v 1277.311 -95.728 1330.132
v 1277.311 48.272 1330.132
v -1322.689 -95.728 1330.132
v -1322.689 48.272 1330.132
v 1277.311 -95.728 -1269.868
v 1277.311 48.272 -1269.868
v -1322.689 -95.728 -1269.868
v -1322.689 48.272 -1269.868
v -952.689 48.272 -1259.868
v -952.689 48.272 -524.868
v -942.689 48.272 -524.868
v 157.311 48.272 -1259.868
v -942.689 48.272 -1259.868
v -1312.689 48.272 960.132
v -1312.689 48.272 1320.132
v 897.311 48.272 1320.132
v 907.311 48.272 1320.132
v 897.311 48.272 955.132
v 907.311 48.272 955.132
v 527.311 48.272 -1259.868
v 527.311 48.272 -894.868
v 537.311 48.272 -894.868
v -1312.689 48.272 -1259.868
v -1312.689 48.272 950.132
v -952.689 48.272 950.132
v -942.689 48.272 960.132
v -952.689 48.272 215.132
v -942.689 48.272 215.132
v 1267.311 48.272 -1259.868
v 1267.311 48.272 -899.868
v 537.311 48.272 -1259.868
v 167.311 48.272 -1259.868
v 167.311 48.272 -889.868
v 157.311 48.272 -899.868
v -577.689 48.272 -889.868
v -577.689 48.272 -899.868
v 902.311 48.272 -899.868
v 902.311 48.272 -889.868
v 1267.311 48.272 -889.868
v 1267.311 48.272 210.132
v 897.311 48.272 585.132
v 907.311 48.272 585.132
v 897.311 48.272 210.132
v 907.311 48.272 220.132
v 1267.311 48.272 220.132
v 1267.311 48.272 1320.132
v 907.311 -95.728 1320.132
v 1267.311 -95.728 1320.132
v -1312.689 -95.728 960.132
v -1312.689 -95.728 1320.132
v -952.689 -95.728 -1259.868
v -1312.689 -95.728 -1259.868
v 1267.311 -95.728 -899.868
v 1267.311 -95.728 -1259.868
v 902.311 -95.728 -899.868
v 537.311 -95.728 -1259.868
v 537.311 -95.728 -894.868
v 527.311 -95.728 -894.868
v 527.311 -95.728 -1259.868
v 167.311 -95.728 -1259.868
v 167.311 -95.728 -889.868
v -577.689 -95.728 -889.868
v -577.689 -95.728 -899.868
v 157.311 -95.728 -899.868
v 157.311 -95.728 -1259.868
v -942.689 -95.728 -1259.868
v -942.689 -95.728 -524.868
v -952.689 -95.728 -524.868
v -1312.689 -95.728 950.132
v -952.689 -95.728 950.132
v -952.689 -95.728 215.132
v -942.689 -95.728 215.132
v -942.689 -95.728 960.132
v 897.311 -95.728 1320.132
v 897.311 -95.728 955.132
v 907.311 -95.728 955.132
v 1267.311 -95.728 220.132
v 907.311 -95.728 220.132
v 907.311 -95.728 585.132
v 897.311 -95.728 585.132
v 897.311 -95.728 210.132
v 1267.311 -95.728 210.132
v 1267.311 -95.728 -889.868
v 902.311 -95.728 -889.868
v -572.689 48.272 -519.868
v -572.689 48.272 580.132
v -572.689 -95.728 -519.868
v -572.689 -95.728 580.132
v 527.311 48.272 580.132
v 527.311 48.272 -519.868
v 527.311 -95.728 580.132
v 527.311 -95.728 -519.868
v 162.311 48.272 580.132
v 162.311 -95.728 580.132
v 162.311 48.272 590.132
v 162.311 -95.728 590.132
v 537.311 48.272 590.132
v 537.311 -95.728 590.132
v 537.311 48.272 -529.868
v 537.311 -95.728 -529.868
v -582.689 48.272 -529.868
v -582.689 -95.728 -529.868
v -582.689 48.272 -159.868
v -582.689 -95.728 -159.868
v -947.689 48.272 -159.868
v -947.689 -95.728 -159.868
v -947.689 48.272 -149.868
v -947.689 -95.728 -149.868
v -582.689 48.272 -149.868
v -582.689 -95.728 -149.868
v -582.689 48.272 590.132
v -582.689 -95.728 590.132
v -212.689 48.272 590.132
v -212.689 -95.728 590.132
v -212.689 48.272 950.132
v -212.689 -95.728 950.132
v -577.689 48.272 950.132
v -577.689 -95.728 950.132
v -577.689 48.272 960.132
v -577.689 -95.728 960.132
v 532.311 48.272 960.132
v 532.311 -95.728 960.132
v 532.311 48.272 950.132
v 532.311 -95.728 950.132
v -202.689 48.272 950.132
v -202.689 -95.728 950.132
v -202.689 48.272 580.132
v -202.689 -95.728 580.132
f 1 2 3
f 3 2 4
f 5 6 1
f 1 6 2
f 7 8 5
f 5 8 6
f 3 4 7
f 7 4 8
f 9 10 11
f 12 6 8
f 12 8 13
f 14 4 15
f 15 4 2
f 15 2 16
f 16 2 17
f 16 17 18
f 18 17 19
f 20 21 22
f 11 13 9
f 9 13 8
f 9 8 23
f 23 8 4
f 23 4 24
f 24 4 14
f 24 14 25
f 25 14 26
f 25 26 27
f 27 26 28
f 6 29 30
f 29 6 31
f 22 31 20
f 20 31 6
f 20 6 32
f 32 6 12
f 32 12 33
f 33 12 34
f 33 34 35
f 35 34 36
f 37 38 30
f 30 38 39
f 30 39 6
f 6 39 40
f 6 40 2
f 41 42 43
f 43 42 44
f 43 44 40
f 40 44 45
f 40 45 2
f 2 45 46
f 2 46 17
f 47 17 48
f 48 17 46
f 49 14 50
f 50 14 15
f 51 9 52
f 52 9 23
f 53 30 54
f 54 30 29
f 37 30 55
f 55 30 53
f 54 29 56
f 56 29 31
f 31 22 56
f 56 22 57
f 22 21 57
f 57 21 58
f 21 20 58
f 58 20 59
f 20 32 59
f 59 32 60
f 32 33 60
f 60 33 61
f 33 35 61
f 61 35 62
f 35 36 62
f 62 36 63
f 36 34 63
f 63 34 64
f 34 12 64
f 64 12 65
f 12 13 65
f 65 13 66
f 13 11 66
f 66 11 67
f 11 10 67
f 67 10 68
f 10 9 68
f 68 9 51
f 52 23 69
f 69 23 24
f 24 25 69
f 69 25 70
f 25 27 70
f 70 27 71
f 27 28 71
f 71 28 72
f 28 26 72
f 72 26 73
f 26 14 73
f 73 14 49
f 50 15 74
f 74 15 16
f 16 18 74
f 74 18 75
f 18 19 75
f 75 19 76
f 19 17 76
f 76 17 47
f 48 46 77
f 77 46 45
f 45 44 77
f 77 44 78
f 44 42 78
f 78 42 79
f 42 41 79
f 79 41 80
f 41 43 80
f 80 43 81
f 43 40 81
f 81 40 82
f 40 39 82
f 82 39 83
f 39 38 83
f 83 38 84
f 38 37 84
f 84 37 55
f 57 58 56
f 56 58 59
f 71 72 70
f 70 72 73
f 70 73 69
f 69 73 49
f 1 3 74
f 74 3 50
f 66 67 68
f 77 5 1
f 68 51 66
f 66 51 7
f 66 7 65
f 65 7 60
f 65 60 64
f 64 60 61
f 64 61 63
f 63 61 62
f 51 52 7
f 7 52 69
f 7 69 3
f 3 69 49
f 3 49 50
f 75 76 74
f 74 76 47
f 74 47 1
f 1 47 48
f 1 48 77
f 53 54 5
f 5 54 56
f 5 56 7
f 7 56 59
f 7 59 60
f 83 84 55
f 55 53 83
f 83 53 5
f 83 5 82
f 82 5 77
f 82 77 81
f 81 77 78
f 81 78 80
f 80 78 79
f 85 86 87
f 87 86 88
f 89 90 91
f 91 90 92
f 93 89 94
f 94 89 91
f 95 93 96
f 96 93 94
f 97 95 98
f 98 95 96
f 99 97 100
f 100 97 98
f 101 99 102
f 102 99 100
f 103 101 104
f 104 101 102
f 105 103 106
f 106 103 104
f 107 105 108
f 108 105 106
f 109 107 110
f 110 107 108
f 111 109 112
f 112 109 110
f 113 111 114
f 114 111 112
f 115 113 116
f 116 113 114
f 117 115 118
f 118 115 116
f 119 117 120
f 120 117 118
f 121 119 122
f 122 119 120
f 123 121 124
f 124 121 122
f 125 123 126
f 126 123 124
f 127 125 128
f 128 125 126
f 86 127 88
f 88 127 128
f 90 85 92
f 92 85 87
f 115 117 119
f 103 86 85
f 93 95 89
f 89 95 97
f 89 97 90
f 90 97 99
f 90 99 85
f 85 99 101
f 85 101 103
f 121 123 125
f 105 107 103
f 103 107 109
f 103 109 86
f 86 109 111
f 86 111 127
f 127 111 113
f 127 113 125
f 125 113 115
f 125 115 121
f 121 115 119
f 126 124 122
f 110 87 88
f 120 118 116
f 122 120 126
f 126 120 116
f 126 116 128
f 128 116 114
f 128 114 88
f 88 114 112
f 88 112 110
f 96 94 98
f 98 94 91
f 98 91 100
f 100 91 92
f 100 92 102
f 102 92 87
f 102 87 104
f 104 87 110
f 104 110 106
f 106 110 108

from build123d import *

# Parameters (mm, degrees)
SKETCH1_W           = 2600
SKETCH1_H           = 2600
BOSS_EXTRUDE1_DEPTH = 150
CUT_EXTRUDE1_DEPTH  = 147
BOSS_EXTRUDE2_DEPTH = 147
CUT_EXTRUDE2_REACH  = 1852
SKETCH4_W           = 1100
SKETCH4_H           = 144
SKETCH5_W           = 360
SKETCH5_H           = 360
CUT_EXTRUDE3_DEPTH  = 3
SKETCH6_W           = 360
SKETCH6_H           = 360
CUT_EXTRUDE4_DEPTH  = 3
SKETCH7_W           = 360
SKETCH7_H           = 360
CUT_EXTRUDE5_DEPTH  = 3
CUT_EXTRUDE6_REACH  = 146
SKETCH9_W           = 360
SKETCH9_H           = 360
CUT_EXTRUDE7_REACH  = 146
SKETCH11_W          = 360
SKETCH11_H          = 360
CUT_EXTRUDE8_REACH  = 146
SKETCH13_W          = 360
SKETCH13_H          = 360
CUT_EXTRUDE9_REACH  = 146
SKETCH15_W          = 360
SKETCH15_H          = 360
SKETCH18_W          = 2600
SKETCH18_H          = 2600
CUT_EXTRUDE10_DEPTH = 6


with BuildPart() as part:
    # Sketch1 → Boss-Extrude1 (new body)
    with BuildSketch(Plane(origin=(0, 48.271727257, 0), x_dir=(1, 0, 0), z_dir=(0, 1, 0))):
        with Locations((-22.689229356, -30.131591124)):
            Rectangle(SKETCH1_W, SKETCH1_H)
    extrude(amount=-BOSS_EXTRUDE1_DEPTH)

    # Sketch2 → Cut-Extrude1 (cut)
    with BuildSketch(Plane(origin=(0, 48.271727257, 0), x_dir=(-1, 0, 0), z_dir=(0, 1, 0))):
        Polygon((-902.310770644, -899.868408876), (-907.310770644, -899.868408876), (-907.310770644, -1259.868408876), (-537.310770644, -1259.868408876), (-537.310770644, -894.868408876), (-527.310770644, -894.868408876), (-527.310770644, -1259.868408876), (-167.310770644, -1259.868408876), (-167.310770644, -889.868408876), (577.689229356, -889.868408876), (577.689229356, -899.868408876), (-157.310770644, -899.868408876), (-157.310770644, -1259.868408876), (942.689229356, -1259.868408876), (942.689229356, -524.868408876), (952.689229356, -524.868408876), (952.689229356, -899.868408876), (1312.689229356, -899.868408876), (1312.689229356, 950.131591124), (952.689229356, 950.131591124), (952.689229356, 215.131591124), (942.689229356, 215.131591124), (942.689229356, 960.131591124), (952.689229356, 960.131591124), (952.689229356, 1320.131591124), (-897.310770644, 1320.131591124), (-897.310770644, 955.131591124), (-907.310770644, 955.131591124), (-907.310770644, 960.131591124), (-1267.310770644, 960.131591124), (-1267.310770644, 220.131591124), (-907.310770644, 220.131591124), (-907.310770644, 585.131591124), (-897.310770644, 585.131591124), (-897.310770644, 210.131591124), (-1267.310770644, 210.131591124), (-1267.310770644, -889.868408876), (-902.310770644, -889.868408876), align=None)
    extrude(amount=-CUT_EXTRUDE1_DEPTH, mode=Mode.SUBTRACT)

    # Sketch3 → Boss-Extrude2 (add)
    with BuildSketch(Plane(origin=(0, -98.728272743, 0), x_dir=(-1, 0, 0), z_dir=(0, 1, 0))):
        Polygon((572.689229356, 580.131591124), (202.689229356, 580.131591124), (202.689229356, 950.131591124), (-532.310770644, 950.131591124), (-532.310770644, 960.131591124), (577.689229356, 960.131591124), (577.689229356, 950.131591124), (212.689229356, 950.131591124), (212.689229356, 590.131591124), (582.689229356, 590.131591124), (582.689229356, -149.868408876), (947.689229356, -149.868408876), (947.689229356, -159.868408876), (582.689229356, -159.868408876), (582.689229356, -529.868408876), (-537.310770644, -529.868408876), (-537.310770644, 590.131591124), (-162.310770644, 590.131591124), (-162.310770644, 580.131591124), (-527.310770644, 580.131591124), (-527.310770644, -149.868408876), (572.689229356, -149.868408876), align=None)
    extrude(amount=BOSS_EXTRUDE2_DEPTH)

    # Sketch4 → Cut-Extrude2 (cut, up to next)
    with BuildSketch(Plane(origin=(0, 0, -519.868408876), x_dir=(-1, 0, 0), z_dir=(0, 0, -1)), mode=Mode.PRIVATE) as cut_extrude2_sk1:
        with Locations((22.689229356, -23.728272743)):
            Rectangle(SKETCH4_W, SKETCH4_H)
    cut_extrude2_tool1 = extrude(cut_extrude2_sk1.sketch, amount=-CUT_EXTRUDE2_REACH, mode=Mode.PRIVATE) & part.part
    add(cut_extrude2_tool1.solids().sort_by_distance((-22.689229, -23.728273, -519.868409))[0], mode=Mode.SUBTRACT)

    # Sketch5 → Cut-Extrude3 (cut)
    with BuildSketch(Plane(origin=(0, -95.728272743, 0), x_dir=(-1, 0, 0), z_dir=(0, 1, 0))):
        with Locations((392.689229356, -339.868408876)):
            Rectangle(SKETCH5_W, SKETCH5_H)
    extrude(amount=-CUT_EXTRUDE3_DEPTH, mode=Mode.SUBTRACT)

    # Sketch6 → Cut-Extrude4 (cut)
    with BuildSketch(Plane(origin=(0, -95.728272743, 0), x_dir=(-1, 0, 0), z_dir=(0, 1, 0))):
        with Locations((-347.310770644, -339.868408876)):
            Rectangle(SKETCH6_W, SKETCH6_H)
    extrude(amount=-CUT_EXTRUDE4_DEPTH, mode=Mode.SUBTRACT)

    # Sketch7 → Cut-Extrude5 (cut)
    with BuildSketch(Plane(origin=(0, -95.728272743, 0), x_dir=(-1, 0, 0), z_dir=(0, 1, 0))):
        with Locations((22.689229356, -339.868408876)):
            Rectangle(SKETCH7_W, SKETCH7_H)
    extrude(amount=-CUT_EXTRUDE5_DEPTH, mode=Mode.SUBTRACT)

    # Sketch9 → Cut-Extrude6 (cut, up to next)
    with BuildSketch(Plane.XZ.offset(95.728272743), mode=Mode.PRIVATE) as cut_extrude6_sk1:
        with Locations((1087.310770644, -1079.868408876)):
            Rectangle(SKETCH9_W, SKETCH9_H)
    cut_extrude6_tool1 = extrude(cut_extrude6_sk1.sketch, amount=-CUT_EXTRUDE6_REACH, mode=Mode.PRIVATE) & part.part
    add(cut_extrude6_tool1.solids().sort_by_distance((1087.310771, -95.728273, -1079.868409))[0], mode=Mode.SUBTRACT)

    # Sketch11 → Cut-Extrude7 (cut, up to next)
    with BuildSketch(Plane.XZ.offset(95.728272743), mode=Mode.PRIVATE) as cut_extrude7_sk1:
        with Locations((1087.310770644, 1140.131591124)):
            Rectangle(SKETCH11_W, SKETCH11_H)
    cut_extrude7_tool1 = extrude(cut_extrude7_sk1.sketch, amount=-CUT_EXTRUDE7_REACH, mode=Mode.PRIVATE) & part.part
    add(cut_extrude7_tool1.solids().sort_by_distance((1087.310771, -95.728273, 1140.131591))[0], mode=Mode.SUBTRACT)

    # Sketch13 → Cut-Extrude8 (cut, up to next)
    with BuildSketch(Plane.XZ.offset(95.728272743), mode=Mode.PRIVATE) as cut_extrude8_sk1:
        with Locations((-1132.689229356, 1140.131591124)):
            Rectangle(SKETCH13_W, SKETCH13_H)
    cut_extrude8_tool1 = extrude(cut_extrude8_sk1.sketch, amount=-CUT_EXTRUDE8_REACH, mode=Mode.PRIVATE) & part.part
    add(cut_extrude8_tool1.solids().sort_by_distance((-1132.689229, -95.728273, 1140.131591))[0], mode=Mode.SUBTRACT)

    # Sketch15 → Cut-Extrude9 (cut, up to next)
    with BuildSketch(Plane.XZ.offset(95.728272743), mode=Mode.PRIVATE) as cut_extrude9_sk1:
        with Locations((-1132.689229356, -1079.868408876)):
            Rectangle(SKETCH15_W, SKETCH15_H)
    cut_extrude9_tool1 = extrude(cut_extrude9_sk1.sketch, amount=-CUT_EXTRUDE9_REACH, mode=Mode.PRIVATE) & part.part
    add(cut_extrude9_tool1.solids().sort_by_distance((-1132.689229, -95.728273, -1079.868409))[0], mode=Mode.SUBTRACT)

    # Sketch18 → Cut-Extrude10 (cut)
    with BuildSketch(Plane.XZ.offset(101.728272743)):
        with Locations((-22.689229356, 30.131591124)):
            Rectangle(SKETCH18_W, SKETCH18_H)
    extrude(amount=-CUT_EXTRUDE10_DEPTH, mode=Mode.SUBTRACT)


solid = part.part
